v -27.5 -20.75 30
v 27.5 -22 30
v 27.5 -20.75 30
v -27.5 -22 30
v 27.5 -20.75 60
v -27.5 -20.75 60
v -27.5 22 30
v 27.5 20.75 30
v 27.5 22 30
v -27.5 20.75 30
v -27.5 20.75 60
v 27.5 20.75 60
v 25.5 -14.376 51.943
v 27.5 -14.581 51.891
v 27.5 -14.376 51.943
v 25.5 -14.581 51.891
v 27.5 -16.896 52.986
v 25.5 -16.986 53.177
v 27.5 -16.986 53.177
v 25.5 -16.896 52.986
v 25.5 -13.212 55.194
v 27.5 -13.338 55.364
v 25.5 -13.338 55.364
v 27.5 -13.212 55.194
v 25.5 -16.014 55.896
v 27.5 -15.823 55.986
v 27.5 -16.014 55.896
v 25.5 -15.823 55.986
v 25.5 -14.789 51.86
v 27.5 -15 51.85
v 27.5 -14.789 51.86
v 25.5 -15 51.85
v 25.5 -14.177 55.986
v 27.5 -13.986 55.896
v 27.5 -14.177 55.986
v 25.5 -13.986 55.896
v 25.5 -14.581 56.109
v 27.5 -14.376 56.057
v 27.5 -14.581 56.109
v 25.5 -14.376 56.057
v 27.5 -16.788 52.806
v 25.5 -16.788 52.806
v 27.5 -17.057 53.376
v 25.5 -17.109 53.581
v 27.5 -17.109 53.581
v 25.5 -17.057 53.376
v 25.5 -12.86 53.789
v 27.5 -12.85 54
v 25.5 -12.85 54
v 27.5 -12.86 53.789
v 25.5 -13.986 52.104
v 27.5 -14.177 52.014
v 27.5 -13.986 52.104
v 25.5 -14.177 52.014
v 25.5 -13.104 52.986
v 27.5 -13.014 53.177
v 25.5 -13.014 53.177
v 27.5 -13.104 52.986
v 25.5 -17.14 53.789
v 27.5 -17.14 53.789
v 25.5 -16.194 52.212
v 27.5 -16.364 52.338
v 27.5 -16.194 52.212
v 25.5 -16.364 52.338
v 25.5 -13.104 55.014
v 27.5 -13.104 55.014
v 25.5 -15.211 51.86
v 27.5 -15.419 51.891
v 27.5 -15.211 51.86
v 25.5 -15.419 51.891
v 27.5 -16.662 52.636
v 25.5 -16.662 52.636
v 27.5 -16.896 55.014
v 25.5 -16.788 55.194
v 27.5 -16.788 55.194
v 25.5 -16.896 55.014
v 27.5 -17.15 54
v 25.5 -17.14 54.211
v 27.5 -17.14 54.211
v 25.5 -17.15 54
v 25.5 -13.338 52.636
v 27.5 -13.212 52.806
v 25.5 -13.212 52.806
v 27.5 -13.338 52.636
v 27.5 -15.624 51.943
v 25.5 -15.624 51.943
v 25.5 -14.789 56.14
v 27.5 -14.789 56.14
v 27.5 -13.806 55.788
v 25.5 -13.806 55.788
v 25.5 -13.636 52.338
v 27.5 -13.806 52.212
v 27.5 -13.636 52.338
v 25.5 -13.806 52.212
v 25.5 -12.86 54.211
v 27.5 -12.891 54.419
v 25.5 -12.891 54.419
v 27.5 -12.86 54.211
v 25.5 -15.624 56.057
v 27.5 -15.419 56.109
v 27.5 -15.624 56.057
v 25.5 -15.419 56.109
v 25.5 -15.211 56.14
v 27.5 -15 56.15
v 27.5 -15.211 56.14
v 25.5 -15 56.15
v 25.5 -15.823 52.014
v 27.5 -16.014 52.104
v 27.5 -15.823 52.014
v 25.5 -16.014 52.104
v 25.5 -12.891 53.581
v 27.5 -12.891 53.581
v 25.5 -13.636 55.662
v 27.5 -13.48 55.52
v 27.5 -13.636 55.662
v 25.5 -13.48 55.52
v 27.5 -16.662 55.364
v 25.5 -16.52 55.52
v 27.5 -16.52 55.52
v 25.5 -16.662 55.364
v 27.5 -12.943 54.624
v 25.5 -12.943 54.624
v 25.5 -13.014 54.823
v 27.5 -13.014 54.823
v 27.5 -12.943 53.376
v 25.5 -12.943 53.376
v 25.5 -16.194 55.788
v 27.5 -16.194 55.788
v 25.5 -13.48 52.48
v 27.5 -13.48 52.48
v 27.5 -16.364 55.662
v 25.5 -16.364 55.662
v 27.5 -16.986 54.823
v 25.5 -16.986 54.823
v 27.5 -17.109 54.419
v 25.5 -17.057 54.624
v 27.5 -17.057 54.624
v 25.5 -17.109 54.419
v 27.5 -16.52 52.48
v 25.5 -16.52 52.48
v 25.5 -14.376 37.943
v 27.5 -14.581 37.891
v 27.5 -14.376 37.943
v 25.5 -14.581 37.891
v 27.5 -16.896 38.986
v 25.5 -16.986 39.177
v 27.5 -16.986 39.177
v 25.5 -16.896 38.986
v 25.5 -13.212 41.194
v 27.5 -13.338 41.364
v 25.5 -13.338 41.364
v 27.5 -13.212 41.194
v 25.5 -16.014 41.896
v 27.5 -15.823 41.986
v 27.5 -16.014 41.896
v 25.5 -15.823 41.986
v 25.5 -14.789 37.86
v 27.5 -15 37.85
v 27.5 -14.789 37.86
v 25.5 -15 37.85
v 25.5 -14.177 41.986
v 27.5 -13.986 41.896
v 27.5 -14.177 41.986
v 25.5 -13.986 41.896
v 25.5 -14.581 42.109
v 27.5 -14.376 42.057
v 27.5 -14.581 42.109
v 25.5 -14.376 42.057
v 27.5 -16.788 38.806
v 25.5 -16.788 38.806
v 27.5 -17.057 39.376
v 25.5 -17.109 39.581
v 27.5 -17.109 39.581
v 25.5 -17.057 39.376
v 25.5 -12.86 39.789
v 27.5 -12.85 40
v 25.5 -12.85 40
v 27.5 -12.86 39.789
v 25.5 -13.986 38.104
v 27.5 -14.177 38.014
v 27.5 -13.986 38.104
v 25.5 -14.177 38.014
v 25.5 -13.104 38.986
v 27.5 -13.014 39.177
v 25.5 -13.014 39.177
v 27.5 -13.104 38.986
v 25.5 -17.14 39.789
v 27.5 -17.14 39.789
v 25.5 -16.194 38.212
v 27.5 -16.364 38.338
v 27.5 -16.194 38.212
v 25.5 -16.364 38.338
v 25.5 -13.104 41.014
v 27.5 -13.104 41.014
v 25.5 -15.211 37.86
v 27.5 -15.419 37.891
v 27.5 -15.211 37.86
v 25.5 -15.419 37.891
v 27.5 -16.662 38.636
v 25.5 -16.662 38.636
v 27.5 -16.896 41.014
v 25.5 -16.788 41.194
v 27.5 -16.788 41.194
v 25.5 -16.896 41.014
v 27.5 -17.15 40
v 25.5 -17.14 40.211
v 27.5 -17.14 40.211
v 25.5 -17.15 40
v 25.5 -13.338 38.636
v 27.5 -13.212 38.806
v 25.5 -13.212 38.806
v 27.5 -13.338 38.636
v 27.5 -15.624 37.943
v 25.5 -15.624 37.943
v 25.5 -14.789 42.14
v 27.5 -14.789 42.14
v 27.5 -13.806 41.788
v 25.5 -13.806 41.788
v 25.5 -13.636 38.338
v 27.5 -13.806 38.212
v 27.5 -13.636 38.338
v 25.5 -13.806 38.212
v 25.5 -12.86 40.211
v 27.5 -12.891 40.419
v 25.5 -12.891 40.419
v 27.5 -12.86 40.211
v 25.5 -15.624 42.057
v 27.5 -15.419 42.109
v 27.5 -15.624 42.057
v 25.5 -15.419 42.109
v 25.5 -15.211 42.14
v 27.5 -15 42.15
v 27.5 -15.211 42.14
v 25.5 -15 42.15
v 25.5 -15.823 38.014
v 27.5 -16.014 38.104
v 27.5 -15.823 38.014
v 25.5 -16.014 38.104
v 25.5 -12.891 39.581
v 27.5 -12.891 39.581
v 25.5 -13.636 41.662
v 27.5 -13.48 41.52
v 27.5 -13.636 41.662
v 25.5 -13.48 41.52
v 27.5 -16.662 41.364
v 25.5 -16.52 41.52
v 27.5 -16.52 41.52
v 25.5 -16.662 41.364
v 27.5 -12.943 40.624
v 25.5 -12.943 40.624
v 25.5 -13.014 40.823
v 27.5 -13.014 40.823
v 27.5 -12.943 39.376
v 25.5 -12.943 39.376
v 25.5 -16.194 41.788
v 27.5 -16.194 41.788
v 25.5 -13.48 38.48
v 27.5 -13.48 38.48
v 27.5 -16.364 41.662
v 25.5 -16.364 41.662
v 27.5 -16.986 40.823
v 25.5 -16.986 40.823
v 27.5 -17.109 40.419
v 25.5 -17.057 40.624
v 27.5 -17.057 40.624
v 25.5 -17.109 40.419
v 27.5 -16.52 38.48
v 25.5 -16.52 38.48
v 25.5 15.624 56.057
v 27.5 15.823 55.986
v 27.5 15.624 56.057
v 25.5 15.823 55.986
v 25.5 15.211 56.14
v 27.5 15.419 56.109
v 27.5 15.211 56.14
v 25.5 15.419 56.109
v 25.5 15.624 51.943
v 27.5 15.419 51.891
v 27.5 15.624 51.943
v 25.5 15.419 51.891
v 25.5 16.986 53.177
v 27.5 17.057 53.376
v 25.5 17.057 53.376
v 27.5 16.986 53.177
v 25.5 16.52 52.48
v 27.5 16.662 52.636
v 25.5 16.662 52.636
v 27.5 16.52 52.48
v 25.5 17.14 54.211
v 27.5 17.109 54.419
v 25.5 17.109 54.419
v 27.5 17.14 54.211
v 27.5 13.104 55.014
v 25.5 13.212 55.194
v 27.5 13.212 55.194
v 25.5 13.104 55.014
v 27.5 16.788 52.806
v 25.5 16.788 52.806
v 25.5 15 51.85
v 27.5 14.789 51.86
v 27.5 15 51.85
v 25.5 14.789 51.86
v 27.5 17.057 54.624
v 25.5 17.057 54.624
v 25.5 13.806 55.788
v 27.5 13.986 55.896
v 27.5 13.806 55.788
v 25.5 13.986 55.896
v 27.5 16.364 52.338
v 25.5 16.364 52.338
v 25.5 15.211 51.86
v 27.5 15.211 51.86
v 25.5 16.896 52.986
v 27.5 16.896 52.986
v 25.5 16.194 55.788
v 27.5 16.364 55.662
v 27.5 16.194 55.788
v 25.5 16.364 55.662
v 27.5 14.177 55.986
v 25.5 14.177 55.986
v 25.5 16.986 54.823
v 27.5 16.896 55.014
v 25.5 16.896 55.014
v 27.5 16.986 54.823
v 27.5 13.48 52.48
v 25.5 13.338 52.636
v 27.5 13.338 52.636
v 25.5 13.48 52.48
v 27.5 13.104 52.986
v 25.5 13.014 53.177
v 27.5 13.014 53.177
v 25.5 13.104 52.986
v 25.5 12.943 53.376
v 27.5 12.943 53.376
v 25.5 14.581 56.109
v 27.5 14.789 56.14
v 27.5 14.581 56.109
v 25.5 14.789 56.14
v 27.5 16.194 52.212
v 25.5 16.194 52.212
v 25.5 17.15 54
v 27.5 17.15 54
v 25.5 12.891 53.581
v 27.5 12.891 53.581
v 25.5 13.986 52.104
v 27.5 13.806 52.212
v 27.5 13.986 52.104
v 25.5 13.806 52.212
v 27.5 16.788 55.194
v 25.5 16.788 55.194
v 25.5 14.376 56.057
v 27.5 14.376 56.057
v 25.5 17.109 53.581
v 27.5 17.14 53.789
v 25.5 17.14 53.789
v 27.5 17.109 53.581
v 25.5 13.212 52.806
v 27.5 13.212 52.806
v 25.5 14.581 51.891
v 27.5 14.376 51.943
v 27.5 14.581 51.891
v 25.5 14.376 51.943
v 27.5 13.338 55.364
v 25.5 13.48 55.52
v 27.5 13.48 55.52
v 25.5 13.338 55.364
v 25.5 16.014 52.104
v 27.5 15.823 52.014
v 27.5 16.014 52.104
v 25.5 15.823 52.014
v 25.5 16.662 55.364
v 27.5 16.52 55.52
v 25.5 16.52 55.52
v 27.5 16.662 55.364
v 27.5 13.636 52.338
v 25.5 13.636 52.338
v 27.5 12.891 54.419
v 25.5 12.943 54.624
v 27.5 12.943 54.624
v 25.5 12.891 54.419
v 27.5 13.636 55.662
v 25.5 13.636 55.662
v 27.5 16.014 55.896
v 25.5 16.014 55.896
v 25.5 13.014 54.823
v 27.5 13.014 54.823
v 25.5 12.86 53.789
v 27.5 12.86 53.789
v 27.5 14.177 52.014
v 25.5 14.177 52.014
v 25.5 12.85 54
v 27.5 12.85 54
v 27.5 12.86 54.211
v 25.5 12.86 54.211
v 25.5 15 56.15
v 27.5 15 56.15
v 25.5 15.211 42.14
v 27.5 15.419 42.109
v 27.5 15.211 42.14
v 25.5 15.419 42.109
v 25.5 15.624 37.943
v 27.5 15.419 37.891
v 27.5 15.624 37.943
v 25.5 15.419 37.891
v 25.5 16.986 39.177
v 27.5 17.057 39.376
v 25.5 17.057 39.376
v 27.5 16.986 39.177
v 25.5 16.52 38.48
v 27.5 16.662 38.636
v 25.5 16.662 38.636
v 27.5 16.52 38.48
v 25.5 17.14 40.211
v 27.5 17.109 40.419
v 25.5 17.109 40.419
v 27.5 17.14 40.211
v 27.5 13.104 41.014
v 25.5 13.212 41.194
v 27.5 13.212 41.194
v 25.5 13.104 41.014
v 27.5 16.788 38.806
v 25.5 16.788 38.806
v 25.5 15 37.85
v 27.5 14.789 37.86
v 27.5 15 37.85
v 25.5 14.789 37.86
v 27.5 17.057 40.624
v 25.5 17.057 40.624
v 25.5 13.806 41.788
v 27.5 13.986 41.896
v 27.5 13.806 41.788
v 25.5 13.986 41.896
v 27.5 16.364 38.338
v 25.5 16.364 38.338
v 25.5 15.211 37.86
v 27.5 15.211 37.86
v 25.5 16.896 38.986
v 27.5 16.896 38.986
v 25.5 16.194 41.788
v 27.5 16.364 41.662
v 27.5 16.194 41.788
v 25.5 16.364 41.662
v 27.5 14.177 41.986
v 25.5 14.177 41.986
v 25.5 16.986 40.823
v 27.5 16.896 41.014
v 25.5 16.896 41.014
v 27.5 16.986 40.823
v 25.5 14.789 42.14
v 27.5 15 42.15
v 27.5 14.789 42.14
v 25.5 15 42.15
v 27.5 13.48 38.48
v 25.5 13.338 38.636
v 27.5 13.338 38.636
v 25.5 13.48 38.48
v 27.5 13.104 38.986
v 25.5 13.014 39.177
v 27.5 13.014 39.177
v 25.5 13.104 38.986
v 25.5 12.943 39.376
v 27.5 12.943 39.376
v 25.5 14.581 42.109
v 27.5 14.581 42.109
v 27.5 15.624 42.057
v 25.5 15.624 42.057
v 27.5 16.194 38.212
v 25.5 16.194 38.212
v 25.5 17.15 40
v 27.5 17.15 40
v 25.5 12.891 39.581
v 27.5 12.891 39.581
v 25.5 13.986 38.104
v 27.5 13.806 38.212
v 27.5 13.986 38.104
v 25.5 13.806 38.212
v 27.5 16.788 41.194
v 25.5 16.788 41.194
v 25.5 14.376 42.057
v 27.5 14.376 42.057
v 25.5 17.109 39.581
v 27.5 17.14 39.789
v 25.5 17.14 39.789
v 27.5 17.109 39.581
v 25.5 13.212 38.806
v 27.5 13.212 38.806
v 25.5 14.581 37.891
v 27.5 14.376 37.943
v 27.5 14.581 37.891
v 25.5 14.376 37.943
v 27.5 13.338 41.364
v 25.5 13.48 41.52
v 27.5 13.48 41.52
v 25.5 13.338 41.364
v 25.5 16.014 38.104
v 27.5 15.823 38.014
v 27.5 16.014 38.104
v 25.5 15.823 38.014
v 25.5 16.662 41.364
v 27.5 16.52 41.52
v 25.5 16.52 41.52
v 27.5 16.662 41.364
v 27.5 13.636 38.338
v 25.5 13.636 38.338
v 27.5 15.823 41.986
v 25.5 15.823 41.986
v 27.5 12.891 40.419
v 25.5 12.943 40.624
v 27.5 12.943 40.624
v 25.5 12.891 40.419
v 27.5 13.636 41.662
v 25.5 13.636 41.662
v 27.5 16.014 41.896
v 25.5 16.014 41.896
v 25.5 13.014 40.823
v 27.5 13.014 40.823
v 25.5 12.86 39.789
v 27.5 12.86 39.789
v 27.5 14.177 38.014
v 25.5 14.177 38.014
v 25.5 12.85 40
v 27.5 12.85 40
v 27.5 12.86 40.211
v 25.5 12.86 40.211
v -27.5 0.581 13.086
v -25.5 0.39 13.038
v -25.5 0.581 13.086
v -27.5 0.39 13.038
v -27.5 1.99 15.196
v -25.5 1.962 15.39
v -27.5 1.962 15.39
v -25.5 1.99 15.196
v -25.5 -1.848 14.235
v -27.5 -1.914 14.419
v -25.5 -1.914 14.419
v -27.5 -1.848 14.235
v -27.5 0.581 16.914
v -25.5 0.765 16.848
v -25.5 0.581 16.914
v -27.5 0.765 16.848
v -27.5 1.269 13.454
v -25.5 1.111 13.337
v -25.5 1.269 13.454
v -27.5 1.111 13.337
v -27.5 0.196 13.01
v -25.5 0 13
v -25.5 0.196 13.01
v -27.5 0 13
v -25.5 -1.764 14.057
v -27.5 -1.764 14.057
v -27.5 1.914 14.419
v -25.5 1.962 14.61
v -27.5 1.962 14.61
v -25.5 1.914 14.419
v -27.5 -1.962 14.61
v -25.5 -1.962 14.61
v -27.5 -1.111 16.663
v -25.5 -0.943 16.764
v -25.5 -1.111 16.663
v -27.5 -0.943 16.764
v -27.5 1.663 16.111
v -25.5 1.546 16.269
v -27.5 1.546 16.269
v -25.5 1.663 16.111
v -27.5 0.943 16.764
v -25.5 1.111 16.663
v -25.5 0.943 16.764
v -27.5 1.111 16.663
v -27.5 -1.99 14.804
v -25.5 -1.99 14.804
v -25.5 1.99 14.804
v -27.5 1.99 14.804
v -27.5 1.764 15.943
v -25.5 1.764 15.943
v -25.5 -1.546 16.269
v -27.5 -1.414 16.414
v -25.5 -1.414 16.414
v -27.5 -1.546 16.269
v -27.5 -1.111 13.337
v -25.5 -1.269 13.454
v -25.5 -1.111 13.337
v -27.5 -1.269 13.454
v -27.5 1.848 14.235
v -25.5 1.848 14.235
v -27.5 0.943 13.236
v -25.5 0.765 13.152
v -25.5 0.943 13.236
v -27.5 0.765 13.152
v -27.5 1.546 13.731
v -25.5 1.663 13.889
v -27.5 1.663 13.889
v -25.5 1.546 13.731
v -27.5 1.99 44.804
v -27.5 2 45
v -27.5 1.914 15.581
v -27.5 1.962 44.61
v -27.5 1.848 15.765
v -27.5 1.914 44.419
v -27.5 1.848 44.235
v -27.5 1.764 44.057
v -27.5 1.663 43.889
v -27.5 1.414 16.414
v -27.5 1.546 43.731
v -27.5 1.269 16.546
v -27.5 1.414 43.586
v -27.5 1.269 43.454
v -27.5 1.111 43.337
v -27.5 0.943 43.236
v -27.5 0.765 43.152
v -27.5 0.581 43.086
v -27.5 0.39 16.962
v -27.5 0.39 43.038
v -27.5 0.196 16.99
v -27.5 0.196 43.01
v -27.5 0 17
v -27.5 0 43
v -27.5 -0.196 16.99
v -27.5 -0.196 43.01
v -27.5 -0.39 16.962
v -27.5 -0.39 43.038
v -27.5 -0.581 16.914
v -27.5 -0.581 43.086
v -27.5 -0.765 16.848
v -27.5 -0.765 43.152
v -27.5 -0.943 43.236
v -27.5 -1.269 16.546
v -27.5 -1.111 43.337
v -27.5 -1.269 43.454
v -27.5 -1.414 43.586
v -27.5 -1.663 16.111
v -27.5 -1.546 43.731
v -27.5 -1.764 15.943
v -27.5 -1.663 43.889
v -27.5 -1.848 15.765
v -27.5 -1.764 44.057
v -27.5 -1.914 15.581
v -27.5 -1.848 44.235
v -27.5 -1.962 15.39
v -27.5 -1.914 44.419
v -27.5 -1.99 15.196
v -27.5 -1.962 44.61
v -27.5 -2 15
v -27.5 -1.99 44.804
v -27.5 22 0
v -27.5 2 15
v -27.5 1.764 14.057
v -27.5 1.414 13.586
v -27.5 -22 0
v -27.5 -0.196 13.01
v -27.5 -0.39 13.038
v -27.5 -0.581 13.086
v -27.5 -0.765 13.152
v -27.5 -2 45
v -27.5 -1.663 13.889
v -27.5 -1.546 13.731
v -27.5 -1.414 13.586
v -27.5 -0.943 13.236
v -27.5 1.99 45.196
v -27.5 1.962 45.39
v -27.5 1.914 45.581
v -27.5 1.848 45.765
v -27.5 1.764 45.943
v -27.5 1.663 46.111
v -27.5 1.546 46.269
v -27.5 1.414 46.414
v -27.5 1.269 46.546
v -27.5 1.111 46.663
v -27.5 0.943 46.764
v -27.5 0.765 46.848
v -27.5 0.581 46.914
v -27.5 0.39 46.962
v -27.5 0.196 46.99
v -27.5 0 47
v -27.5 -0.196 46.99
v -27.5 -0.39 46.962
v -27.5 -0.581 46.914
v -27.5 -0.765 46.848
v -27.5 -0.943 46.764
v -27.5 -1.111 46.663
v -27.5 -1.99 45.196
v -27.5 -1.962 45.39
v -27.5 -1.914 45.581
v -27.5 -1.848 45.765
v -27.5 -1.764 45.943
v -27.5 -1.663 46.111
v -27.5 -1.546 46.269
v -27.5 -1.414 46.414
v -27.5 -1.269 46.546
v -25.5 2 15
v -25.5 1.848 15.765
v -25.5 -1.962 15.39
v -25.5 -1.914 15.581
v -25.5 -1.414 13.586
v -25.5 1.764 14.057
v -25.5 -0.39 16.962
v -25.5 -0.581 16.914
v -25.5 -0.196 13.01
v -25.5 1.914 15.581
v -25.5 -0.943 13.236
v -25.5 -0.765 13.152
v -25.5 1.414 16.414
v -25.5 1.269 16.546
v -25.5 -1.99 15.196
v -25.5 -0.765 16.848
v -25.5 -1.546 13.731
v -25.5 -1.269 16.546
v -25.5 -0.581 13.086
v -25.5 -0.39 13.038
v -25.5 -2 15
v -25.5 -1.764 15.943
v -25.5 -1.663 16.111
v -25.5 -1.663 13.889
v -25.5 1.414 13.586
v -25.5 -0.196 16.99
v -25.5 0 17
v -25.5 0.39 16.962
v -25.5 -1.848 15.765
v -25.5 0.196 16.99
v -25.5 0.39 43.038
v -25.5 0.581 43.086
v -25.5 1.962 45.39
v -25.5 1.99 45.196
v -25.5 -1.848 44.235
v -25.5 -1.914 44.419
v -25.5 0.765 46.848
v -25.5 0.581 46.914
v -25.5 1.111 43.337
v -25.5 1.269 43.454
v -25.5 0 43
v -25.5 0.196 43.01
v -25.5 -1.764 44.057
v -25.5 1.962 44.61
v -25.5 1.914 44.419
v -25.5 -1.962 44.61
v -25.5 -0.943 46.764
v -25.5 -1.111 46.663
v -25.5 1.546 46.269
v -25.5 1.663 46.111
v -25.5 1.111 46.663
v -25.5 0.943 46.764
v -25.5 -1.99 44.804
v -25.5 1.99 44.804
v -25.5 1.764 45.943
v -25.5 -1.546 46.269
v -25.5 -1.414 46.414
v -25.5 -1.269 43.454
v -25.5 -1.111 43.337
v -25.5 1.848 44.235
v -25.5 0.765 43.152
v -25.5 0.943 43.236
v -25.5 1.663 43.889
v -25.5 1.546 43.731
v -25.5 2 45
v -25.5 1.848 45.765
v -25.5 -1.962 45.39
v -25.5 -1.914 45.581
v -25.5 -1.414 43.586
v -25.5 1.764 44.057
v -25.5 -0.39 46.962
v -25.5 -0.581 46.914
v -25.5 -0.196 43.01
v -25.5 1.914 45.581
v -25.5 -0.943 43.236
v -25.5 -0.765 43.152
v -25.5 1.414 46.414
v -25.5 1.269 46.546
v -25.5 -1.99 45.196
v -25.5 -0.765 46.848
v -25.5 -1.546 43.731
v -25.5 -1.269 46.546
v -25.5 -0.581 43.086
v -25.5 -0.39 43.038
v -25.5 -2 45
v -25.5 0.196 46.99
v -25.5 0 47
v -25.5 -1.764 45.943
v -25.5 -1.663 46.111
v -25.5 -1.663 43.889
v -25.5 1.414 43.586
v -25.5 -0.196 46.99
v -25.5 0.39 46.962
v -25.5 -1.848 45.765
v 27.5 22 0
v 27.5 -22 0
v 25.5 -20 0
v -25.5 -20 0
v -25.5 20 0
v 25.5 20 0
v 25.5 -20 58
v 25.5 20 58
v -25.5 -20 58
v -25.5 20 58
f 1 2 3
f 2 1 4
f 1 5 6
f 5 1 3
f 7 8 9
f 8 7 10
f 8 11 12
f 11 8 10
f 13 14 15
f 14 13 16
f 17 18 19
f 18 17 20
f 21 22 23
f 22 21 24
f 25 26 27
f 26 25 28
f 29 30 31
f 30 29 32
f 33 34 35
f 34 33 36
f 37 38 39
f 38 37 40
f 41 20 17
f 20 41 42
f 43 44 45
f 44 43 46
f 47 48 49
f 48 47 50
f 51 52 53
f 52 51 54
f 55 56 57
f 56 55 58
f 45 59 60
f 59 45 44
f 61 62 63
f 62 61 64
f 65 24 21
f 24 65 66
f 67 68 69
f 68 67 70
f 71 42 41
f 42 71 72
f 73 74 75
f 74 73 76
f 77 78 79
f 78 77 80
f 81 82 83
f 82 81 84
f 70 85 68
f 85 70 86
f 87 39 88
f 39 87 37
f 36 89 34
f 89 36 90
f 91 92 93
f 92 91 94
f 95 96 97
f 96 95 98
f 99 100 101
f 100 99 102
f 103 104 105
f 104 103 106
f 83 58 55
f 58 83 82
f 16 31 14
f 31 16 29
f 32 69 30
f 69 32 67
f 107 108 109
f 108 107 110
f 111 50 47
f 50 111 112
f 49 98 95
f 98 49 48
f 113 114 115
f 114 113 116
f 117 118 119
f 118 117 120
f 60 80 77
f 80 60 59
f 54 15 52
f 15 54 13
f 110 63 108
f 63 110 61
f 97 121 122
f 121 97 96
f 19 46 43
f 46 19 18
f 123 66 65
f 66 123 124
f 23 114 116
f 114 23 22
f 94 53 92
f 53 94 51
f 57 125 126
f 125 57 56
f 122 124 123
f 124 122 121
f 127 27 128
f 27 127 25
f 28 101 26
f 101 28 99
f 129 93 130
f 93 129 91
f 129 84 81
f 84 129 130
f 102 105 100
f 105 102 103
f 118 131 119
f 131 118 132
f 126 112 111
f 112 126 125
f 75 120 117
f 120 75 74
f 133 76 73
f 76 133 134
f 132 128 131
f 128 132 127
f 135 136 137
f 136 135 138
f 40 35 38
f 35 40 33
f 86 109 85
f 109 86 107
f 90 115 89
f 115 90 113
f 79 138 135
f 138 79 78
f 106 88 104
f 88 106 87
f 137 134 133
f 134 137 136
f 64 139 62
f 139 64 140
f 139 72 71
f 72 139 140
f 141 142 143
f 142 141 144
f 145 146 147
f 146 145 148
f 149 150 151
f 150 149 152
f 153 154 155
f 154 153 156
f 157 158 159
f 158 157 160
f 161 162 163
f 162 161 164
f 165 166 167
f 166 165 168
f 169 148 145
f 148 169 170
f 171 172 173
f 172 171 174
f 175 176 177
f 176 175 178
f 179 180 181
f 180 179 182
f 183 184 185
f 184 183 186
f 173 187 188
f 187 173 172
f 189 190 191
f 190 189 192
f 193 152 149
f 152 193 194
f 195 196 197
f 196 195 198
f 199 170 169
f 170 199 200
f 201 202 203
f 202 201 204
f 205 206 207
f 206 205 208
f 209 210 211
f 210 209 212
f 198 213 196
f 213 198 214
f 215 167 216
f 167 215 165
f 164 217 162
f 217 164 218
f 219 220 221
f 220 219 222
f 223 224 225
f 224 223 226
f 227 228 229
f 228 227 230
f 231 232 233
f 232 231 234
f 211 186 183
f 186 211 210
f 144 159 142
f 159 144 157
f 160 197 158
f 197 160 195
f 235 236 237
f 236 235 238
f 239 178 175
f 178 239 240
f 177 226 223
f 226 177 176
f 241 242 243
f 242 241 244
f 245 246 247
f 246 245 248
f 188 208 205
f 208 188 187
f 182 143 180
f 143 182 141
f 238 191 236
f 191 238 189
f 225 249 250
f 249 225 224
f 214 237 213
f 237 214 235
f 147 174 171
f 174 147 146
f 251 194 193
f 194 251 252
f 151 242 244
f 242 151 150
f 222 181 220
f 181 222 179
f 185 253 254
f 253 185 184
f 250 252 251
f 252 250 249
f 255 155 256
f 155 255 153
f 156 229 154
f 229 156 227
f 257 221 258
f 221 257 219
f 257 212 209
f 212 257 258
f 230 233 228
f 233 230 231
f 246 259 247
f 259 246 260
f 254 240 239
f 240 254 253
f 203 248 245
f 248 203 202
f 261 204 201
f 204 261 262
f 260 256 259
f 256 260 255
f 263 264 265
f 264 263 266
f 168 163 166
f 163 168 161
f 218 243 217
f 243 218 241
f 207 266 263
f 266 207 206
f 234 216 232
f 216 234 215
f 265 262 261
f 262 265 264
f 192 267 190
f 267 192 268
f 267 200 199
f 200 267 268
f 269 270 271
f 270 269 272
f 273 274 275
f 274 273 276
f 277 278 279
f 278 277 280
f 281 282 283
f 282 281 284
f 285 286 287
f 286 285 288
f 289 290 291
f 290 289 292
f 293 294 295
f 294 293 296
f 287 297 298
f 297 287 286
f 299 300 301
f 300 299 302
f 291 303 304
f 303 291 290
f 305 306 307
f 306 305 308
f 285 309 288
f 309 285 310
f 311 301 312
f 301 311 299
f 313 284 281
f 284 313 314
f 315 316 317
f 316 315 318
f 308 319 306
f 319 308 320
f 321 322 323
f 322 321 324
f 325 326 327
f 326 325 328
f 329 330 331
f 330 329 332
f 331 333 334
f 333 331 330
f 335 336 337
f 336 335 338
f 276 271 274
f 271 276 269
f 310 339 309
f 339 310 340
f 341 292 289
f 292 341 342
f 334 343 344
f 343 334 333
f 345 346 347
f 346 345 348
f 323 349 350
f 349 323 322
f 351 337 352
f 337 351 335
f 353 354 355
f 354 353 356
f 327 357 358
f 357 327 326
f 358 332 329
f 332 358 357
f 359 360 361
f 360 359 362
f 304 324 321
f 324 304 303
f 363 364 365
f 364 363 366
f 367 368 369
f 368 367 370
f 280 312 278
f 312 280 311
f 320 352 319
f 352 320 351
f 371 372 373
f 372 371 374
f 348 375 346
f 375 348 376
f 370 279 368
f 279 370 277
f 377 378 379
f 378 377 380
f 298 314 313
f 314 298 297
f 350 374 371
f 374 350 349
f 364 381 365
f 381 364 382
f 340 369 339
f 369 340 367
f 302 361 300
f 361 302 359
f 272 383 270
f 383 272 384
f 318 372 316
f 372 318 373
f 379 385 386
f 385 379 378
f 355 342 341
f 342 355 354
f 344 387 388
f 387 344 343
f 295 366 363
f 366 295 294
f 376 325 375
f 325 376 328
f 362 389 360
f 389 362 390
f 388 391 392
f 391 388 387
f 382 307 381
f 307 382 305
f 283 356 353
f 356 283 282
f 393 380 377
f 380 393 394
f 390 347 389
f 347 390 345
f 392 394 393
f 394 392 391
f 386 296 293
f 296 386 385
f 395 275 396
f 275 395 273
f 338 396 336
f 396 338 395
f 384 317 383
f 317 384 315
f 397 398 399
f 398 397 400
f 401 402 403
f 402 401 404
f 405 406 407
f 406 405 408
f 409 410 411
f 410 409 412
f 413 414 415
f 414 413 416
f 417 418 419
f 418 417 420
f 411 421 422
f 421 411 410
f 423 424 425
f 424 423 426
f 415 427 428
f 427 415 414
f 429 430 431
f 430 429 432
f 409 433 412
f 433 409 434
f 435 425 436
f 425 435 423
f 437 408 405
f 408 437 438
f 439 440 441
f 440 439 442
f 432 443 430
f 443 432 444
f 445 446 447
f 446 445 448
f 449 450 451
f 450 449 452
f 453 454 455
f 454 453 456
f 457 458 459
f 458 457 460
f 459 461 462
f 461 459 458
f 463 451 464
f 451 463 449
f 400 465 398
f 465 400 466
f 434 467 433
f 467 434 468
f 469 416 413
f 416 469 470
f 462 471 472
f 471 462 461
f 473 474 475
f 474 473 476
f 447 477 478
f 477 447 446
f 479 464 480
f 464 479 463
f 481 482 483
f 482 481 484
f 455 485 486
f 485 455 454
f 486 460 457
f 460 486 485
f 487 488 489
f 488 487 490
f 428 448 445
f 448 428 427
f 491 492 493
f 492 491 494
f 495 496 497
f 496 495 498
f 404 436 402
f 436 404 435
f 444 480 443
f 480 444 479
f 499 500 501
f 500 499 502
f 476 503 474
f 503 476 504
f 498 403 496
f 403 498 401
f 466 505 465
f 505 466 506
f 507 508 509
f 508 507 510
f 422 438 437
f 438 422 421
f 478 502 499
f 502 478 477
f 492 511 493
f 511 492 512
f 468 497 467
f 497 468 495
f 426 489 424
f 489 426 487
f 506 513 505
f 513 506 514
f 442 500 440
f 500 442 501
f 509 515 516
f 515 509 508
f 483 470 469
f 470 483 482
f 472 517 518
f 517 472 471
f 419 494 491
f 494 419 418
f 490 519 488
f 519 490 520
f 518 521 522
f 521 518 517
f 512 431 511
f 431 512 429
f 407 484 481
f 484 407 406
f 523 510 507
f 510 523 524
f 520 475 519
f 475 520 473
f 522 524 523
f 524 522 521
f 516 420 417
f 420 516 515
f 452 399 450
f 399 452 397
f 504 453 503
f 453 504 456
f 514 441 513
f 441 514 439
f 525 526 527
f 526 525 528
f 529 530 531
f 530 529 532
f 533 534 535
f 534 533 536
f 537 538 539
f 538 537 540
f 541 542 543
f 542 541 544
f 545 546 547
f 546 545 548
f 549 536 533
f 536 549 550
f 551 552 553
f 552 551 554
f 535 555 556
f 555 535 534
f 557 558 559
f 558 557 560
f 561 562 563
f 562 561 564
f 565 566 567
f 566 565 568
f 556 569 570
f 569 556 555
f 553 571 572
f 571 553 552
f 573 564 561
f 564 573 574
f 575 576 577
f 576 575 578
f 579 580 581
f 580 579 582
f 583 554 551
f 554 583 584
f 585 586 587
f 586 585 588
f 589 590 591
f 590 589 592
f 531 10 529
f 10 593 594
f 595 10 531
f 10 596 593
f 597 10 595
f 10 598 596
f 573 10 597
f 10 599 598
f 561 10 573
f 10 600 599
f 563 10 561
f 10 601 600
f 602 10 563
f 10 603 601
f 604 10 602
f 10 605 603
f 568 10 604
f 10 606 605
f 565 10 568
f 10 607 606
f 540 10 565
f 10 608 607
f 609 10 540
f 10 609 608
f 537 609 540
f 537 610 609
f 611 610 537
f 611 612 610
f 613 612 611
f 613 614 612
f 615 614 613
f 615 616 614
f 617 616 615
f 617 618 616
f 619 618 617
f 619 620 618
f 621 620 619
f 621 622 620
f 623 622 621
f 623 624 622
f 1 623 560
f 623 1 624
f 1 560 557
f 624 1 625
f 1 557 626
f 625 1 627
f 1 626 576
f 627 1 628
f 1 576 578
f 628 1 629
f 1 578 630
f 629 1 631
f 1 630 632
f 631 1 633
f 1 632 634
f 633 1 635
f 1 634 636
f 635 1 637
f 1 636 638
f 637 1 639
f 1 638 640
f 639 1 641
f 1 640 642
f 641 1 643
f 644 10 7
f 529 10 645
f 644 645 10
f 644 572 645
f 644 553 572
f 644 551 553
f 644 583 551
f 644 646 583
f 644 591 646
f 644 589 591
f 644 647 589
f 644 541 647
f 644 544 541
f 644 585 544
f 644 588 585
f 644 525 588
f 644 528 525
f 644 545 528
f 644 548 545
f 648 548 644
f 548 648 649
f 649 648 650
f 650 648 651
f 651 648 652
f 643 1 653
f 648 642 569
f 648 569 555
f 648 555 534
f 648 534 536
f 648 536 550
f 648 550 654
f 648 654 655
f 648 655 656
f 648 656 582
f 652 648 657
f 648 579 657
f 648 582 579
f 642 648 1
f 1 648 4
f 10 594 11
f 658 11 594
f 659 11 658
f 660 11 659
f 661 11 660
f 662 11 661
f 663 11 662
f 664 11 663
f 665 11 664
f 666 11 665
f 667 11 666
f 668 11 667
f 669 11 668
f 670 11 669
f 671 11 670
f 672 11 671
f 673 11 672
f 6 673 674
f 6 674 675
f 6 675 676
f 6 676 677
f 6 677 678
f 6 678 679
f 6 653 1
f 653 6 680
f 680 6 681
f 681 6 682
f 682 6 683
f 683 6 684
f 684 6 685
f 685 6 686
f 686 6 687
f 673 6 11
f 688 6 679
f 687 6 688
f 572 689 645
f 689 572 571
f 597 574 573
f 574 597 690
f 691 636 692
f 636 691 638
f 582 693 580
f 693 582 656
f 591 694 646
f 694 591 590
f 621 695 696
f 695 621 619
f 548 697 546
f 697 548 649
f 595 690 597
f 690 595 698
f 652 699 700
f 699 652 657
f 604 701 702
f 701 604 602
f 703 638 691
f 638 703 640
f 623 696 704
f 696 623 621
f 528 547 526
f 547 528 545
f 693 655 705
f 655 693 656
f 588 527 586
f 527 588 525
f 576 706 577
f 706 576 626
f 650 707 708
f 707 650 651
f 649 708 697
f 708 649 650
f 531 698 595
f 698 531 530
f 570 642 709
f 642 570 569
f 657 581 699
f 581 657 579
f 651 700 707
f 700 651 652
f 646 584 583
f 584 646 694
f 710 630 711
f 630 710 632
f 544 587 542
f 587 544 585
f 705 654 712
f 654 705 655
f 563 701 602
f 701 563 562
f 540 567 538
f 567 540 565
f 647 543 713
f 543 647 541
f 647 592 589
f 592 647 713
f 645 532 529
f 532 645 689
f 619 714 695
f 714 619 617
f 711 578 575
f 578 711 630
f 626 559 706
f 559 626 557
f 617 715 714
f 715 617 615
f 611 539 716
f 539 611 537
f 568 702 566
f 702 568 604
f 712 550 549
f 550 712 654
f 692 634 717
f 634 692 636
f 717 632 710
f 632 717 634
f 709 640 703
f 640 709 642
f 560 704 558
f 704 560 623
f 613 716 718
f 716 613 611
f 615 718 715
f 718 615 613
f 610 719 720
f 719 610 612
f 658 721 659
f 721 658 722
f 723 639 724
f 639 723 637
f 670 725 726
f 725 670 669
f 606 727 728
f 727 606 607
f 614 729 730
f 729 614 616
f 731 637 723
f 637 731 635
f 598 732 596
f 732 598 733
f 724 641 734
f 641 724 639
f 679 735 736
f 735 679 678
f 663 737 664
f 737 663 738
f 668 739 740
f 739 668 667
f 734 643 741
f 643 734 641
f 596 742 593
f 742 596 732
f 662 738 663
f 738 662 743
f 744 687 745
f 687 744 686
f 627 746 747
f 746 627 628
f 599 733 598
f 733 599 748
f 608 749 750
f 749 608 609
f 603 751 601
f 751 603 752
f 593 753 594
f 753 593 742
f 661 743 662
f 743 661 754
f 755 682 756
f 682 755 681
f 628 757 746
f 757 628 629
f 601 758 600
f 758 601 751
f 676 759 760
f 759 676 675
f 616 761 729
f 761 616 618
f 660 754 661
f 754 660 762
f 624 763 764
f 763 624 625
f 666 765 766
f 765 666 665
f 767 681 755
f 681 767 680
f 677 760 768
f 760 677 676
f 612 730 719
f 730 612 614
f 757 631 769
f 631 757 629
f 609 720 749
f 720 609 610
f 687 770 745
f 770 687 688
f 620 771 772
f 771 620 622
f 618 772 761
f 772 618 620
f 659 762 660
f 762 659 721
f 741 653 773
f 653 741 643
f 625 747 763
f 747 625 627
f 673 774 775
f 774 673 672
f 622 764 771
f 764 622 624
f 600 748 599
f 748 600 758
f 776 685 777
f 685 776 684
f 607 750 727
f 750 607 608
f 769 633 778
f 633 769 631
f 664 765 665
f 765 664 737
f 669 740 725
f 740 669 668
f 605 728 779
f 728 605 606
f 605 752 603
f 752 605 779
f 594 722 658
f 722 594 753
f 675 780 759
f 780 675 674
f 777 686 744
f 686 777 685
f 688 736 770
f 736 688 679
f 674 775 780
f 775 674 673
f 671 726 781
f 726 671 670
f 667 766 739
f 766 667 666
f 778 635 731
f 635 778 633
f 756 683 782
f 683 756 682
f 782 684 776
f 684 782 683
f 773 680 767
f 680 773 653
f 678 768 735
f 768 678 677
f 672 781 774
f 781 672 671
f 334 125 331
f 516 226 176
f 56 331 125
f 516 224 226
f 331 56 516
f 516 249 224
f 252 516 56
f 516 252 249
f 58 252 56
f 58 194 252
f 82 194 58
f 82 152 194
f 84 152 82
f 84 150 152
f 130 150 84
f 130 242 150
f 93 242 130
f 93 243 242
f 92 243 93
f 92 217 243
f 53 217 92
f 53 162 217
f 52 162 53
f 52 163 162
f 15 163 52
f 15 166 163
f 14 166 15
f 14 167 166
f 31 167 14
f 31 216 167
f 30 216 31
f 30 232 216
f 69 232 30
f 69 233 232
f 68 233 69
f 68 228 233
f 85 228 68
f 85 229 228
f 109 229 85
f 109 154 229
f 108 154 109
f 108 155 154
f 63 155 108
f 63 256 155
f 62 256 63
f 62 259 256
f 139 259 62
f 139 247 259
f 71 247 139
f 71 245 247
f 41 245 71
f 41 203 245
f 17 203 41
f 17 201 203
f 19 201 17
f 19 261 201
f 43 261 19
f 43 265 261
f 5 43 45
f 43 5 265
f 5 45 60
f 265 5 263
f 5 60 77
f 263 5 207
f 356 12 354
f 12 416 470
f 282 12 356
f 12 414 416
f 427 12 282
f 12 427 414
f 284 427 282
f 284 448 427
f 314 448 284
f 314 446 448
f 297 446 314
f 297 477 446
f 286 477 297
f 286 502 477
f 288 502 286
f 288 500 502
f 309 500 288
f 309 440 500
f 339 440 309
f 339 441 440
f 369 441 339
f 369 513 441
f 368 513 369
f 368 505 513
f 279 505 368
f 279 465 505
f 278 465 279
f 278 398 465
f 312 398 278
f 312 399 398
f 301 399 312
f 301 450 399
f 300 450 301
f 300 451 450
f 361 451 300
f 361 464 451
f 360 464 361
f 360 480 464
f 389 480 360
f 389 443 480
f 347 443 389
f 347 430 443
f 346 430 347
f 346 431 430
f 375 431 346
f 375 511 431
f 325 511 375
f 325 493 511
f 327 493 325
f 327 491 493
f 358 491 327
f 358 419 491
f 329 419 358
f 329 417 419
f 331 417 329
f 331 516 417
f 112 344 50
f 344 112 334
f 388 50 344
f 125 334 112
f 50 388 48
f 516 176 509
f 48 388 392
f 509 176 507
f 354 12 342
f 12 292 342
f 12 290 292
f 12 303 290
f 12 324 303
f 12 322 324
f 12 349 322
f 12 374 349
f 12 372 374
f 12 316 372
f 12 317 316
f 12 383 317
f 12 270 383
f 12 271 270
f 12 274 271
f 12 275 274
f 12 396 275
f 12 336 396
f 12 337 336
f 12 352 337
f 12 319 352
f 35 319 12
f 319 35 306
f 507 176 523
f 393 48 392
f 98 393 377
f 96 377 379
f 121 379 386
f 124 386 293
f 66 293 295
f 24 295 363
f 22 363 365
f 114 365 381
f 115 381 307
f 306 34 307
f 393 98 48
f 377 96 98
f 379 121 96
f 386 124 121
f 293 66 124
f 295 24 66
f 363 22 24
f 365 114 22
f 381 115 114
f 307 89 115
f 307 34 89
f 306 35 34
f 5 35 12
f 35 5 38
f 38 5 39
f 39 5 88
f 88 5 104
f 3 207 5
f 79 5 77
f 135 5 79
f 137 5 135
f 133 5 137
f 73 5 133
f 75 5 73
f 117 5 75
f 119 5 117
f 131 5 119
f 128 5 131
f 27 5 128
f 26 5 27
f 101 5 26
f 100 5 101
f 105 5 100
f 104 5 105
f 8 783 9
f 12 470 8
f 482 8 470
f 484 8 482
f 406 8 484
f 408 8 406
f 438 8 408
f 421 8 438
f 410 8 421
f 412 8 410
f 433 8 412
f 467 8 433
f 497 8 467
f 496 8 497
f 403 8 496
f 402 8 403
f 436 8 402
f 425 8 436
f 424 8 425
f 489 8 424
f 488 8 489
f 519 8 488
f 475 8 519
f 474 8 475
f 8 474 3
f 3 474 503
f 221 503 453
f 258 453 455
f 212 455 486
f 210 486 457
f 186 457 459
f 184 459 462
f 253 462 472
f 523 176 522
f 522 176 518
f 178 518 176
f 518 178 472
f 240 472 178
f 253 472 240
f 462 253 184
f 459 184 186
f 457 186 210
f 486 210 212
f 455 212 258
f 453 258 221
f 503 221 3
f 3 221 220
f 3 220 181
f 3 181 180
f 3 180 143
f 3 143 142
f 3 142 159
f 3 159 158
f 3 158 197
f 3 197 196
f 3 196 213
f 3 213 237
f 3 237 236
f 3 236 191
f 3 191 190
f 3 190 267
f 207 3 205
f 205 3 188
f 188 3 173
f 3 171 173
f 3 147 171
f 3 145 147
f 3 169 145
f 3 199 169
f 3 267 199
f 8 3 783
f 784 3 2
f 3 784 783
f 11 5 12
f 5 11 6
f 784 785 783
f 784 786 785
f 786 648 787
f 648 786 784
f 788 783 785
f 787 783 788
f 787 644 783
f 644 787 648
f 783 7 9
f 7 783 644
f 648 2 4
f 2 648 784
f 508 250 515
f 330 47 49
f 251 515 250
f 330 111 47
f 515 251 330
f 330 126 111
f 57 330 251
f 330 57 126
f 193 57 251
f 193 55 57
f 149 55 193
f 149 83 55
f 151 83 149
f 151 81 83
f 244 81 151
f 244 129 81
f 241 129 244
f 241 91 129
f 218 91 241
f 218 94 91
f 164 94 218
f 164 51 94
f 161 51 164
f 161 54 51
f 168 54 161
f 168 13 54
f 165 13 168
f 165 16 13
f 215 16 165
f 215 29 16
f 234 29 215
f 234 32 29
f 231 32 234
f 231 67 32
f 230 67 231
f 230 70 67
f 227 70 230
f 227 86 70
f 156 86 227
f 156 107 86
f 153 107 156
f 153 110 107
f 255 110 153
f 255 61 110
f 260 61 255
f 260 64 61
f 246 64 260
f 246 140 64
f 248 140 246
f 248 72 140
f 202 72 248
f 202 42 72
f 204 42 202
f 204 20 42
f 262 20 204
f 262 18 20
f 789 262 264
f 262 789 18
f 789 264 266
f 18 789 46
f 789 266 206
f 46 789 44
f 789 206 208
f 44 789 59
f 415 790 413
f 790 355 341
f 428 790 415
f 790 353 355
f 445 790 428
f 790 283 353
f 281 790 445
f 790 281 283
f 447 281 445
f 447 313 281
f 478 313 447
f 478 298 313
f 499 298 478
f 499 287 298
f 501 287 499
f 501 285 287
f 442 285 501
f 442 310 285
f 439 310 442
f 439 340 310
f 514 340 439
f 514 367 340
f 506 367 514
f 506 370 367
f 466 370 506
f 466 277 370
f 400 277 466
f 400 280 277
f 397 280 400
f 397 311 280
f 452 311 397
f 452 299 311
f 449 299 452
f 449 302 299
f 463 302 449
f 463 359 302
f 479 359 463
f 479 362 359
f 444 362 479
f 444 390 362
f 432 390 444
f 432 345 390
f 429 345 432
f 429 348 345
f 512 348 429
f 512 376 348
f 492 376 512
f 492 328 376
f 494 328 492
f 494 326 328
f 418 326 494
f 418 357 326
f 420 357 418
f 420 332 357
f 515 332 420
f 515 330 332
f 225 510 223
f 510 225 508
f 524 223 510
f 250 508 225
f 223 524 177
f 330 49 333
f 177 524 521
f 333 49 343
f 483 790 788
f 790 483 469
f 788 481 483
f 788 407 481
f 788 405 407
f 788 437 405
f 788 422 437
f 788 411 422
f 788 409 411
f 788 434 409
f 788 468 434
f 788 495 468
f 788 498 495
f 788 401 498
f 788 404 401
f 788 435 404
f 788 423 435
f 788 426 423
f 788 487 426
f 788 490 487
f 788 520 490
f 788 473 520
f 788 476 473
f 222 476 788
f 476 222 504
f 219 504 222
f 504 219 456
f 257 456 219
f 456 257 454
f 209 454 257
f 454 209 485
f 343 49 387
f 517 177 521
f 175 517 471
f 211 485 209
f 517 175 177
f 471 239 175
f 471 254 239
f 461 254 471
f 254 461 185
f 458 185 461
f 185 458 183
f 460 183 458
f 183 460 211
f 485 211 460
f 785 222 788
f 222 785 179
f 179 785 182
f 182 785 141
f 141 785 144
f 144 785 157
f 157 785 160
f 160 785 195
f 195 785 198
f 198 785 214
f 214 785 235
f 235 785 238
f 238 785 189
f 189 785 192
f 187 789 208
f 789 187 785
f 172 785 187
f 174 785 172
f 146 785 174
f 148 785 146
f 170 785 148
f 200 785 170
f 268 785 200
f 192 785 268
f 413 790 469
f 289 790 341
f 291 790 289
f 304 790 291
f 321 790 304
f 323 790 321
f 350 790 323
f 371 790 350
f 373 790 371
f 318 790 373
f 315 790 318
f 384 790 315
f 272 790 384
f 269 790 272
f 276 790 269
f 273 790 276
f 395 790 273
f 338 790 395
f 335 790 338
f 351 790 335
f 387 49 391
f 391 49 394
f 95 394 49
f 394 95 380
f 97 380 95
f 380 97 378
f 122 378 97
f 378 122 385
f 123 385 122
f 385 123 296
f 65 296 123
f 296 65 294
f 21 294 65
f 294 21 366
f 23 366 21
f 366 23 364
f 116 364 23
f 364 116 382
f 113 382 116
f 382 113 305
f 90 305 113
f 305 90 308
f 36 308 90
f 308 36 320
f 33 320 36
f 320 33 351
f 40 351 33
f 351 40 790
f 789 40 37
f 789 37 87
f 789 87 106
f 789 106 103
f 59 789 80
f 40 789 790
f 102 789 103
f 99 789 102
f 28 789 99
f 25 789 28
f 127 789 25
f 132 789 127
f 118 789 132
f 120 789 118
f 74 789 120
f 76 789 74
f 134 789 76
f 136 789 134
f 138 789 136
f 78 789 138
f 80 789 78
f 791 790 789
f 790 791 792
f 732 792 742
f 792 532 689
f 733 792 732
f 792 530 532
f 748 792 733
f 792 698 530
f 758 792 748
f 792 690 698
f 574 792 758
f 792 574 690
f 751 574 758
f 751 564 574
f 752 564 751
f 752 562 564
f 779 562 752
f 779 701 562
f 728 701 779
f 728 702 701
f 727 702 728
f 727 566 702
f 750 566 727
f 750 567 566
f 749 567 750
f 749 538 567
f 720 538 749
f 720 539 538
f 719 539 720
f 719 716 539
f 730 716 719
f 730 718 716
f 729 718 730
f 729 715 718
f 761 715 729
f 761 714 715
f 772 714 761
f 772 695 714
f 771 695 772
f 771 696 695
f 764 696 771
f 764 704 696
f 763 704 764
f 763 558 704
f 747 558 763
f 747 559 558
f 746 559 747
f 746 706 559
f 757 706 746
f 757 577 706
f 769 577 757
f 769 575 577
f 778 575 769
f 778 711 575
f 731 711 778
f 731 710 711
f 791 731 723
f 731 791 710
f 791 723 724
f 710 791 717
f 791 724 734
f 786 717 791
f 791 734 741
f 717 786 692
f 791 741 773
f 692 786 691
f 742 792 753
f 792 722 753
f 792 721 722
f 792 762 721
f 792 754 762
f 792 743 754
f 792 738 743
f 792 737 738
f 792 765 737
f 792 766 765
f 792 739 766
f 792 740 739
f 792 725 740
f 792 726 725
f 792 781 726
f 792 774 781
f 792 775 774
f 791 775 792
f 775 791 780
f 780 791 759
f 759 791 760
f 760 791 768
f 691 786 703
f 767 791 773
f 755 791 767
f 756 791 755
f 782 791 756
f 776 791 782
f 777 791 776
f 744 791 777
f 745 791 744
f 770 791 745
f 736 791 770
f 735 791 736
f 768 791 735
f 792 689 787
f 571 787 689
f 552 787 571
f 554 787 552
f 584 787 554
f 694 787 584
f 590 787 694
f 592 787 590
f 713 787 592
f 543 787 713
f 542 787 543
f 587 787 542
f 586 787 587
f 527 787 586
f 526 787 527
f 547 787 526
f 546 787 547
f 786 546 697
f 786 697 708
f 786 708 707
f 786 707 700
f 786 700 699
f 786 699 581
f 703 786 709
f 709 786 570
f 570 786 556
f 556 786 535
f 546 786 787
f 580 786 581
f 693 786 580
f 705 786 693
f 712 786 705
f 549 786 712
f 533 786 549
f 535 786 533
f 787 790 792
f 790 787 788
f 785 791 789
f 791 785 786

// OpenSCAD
// =====================================================================
//  CORNER CAP for the other hinge leaf (the rotating arm)
//
//  Pushes onto the END of the rectangular wood, wraps all four sides
//  and closes the end, so the whole end corner is covered. The arm
//  leaf mounts on the SIDE face (screws go in from that face, through
//  the wall, into the wood).
//
//  Arm leaf pattern (from drawing): 4 x Ø4.3 on a 14 x 30 grid.
// =====================================================================

/* [Wood] */
wood_width  = 40;    // Y
wood_depth  = 51;    // X
clearance   = 0;   // slip-fit gap

/* [Cap] */
wall        = 2;     // wall thickness
cap_thick   = 2;     // end plate thickness
body_len    = 60;    // how far the cap runs down the wood

/* [Hinge relief]  (cap narrows so the hinge leaf slides over it) */
hinge_w     = 41.5;  // leaf width; cap outer Y becomes this in the zone
hinge_zone  = 30;    // zone from the closed (top) end where it narrows

/* [Arm mounting]  (on the +X side wall) */
hole_dx     = 30;    // screw spacing across (Y)
hole_dz     = 14;    // screw spacing along the wood (Z)
hole_d      = 4.3;   // M4 clearance hole
hole_top    = 6;     // distance from the closed (top) end to the near holes

/* [Locking] */
side_screws = true;  // extra screws through the -X wall into the wood
side_d      = 4;
side_dz     = 30;    // spacing of the back holes, stacked vertically (Z)

/* [View] */
part        = "assembly";  // [cap, wood, assembly]
show_wood   = false;

$fn = 64;

// ---------------------------------------------------------------------
outer_x = wood_depth + 2 * wall;
outer_y = wood_width + 2 * wall;
relief_y = (outer_y - hinge_w) / 2;   // cut off each Y side in the hinge zone

// z = 0 at the open bottom, z = body_len at the closed end face
z_end_plate = body_len - cap_thick;

module wood() {
    translate([0, 0, z_end_plate - 100])
        color("burlywood", 0.75)
            cube([wood_depth, wood_width, 200], center = true);
}

module corner_cap() {
    difference() {
        // solid block: walls + closed end
        translate([0, 0, body_len / 2])
            cube([outer_x, outer_y, body_len], center = true);

        // inner pocket, open at the bottom (z = 0)
        translate([0, 0, (z_end_plate - 1) / 2])
            cube([wood_depth + clearance,
                  wood_width + clearance,
                  z_end_plate + 1], center = true);

        // hinge relief: narrow the cap to hinge_w in the top hinge_zone
        // so the (wider than the wood) hinge leaf slides over the end
        for (sy = [-1, 1])
            translate([-outer_x / 2 - 1,
                       sy > 0 ? outer_y / 2 - relief_y : -outer_y / 2 - 1,
                       body_len - hinge_zone])
                cube([outer_x + 2, relief_y + 1, hinge_zone + 1]);

        // 4 arm screw holes through the +X side wall
        //   top pair:  hole_top from the closed end
        //   bottom pair: hole_dz further down
        for (sy = [-1, 1], sz = [0, 1])
            translate([outer_x / 2,
                       sy * hole_dx / 2,
                       body_len - hole_top - sz * hole_dz])
                rotate([0, 90, 0])
                    cylinder(d = hole_d, h = wall * 3, center = true);

        // optional locking screws through the -X wall, stacked vertically
        if (side_screws)
            for (sz = [-1, 1])
                translate([-outer_x / 2, 0, body_len / 2 + sz * side_dz / 2])
                    rotate([0, 90, 0])
                        cylinder(d = side_d, h = wall + 15);
    }
}

// ---------------------------------------------------------------------
if (part == "wood") {
    wood();
} else if (part == "cap") {
    corner_cap();
} else {
    corner_cap();
    if (show_wood) wood();
}
